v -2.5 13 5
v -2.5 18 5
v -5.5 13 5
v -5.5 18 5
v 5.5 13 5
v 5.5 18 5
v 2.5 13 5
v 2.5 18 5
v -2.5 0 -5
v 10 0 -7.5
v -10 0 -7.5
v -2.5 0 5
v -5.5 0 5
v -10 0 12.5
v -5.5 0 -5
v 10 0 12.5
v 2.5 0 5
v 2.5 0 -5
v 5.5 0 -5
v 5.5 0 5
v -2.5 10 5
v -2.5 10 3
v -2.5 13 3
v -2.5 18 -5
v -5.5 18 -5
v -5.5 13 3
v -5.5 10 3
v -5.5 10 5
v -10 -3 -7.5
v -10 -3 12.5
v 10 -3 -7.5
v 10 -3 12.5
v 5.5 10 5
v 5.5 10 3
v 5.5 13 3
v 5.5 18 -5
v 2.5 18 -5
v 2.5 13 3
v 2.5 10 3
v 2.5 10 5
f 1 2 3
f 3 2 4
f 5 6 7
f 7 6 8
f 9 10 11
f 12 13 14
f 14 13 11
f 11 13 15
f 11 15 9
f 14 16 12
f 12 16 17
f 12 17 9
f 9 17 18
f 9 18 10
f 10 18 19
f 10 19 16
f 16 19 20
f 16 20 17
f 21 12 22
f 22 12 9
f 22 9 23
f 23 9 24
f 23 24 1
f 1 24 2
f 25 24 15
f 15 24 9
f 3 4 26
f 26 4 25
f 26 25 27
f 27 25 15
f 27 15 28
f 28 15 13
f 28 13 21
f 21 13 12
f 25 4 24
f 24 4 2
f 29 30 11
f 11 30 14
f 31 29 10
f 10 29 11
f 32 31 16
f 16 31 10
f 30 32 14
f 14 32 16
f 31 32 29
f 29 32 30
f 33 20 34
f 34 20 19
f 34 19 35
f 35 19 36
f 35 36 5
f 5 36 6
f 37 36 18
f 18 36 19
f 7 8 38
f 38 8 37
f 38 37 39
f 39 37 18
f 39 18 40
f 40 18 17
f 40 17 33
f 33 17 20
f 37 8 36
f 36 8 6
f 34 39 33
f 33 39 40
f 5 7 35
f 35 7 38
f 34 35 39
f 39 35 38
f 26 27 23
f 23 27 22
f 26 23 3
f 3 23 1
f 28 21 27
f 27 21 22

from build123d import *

# Parameters (mm, degrees)
SKETCH1_W             = 3
SKETCH1_H             = 10
BOSS_EXTRUDE1_DEPTH   = 18
BOSS_EXTRUDE1_2_DEPTH = 18
SKETCH2_W             = 20
SKETCH2_H             = 5
SKETCH2_H_2           = 15
BOSS_EXTRUDE2_DEPTH   = 3
SKETCH3_W             = 11
SKETCH3_H             = 3
CUT_EXTRUDE1_DEPTH    = 2


with BuildPart() as part:
    # Sketch1 → Boss-Extrude1 (new body)
    with BuildSketch(Plane(origin=(0, 0, 0), x_dir=(1, 0, 0), z_dir=(0, 1, 0))):
        with Locations((-4, 0)):
            Rectangle(SKETCH1_W, SKETCH1_H)
    extrude(amount=BOSS_EXTRUDE1_DEPTH)



with BuildPart() as body_2:
    # Sketch1 → Boss-Extrude1 2 (new body)
    with BuildSketch(Plane(origin=(0, 0, 0), x_dir=(1, 0, 0), z_dir=(0, 1, 0))):
        with Locations((4, 0)):
            Rectangle(SKETCH1_W, SKETCH1_H)
    extrude(amount=BOSS_EXTRUDE1_2_DEPTH)


with BuildPart() as part_1:
    add(part.part)

    add(body_2.part)  # Boss-Extrude2 merges body 2
    # Sketch2 → Boss-Extrude2 (add)
    with BuildSketch(Plane.XZ):
        with Locations((0, 10)):
            Rectangle(SKETCH2_W, SKETCH2_H)
        Rectangle(SKETCH2_W, SKETCH2_H_2)
    extrude(amount=BOSS_EXTRUDE2_DEPTH)

    # Sketch3 → Cut-Extrude1 (cut)
    with BuildSketch(Plane.XY.offset(5)):
        with Locations((0, 11.5)):
            Rectangle(SKETCH3_W, SKETCH3_H)
    extrude(amount=-CUT_EXTRUDE1_DEPTH, mode=Mode.SUBTRACT)


solid = part_1.part
